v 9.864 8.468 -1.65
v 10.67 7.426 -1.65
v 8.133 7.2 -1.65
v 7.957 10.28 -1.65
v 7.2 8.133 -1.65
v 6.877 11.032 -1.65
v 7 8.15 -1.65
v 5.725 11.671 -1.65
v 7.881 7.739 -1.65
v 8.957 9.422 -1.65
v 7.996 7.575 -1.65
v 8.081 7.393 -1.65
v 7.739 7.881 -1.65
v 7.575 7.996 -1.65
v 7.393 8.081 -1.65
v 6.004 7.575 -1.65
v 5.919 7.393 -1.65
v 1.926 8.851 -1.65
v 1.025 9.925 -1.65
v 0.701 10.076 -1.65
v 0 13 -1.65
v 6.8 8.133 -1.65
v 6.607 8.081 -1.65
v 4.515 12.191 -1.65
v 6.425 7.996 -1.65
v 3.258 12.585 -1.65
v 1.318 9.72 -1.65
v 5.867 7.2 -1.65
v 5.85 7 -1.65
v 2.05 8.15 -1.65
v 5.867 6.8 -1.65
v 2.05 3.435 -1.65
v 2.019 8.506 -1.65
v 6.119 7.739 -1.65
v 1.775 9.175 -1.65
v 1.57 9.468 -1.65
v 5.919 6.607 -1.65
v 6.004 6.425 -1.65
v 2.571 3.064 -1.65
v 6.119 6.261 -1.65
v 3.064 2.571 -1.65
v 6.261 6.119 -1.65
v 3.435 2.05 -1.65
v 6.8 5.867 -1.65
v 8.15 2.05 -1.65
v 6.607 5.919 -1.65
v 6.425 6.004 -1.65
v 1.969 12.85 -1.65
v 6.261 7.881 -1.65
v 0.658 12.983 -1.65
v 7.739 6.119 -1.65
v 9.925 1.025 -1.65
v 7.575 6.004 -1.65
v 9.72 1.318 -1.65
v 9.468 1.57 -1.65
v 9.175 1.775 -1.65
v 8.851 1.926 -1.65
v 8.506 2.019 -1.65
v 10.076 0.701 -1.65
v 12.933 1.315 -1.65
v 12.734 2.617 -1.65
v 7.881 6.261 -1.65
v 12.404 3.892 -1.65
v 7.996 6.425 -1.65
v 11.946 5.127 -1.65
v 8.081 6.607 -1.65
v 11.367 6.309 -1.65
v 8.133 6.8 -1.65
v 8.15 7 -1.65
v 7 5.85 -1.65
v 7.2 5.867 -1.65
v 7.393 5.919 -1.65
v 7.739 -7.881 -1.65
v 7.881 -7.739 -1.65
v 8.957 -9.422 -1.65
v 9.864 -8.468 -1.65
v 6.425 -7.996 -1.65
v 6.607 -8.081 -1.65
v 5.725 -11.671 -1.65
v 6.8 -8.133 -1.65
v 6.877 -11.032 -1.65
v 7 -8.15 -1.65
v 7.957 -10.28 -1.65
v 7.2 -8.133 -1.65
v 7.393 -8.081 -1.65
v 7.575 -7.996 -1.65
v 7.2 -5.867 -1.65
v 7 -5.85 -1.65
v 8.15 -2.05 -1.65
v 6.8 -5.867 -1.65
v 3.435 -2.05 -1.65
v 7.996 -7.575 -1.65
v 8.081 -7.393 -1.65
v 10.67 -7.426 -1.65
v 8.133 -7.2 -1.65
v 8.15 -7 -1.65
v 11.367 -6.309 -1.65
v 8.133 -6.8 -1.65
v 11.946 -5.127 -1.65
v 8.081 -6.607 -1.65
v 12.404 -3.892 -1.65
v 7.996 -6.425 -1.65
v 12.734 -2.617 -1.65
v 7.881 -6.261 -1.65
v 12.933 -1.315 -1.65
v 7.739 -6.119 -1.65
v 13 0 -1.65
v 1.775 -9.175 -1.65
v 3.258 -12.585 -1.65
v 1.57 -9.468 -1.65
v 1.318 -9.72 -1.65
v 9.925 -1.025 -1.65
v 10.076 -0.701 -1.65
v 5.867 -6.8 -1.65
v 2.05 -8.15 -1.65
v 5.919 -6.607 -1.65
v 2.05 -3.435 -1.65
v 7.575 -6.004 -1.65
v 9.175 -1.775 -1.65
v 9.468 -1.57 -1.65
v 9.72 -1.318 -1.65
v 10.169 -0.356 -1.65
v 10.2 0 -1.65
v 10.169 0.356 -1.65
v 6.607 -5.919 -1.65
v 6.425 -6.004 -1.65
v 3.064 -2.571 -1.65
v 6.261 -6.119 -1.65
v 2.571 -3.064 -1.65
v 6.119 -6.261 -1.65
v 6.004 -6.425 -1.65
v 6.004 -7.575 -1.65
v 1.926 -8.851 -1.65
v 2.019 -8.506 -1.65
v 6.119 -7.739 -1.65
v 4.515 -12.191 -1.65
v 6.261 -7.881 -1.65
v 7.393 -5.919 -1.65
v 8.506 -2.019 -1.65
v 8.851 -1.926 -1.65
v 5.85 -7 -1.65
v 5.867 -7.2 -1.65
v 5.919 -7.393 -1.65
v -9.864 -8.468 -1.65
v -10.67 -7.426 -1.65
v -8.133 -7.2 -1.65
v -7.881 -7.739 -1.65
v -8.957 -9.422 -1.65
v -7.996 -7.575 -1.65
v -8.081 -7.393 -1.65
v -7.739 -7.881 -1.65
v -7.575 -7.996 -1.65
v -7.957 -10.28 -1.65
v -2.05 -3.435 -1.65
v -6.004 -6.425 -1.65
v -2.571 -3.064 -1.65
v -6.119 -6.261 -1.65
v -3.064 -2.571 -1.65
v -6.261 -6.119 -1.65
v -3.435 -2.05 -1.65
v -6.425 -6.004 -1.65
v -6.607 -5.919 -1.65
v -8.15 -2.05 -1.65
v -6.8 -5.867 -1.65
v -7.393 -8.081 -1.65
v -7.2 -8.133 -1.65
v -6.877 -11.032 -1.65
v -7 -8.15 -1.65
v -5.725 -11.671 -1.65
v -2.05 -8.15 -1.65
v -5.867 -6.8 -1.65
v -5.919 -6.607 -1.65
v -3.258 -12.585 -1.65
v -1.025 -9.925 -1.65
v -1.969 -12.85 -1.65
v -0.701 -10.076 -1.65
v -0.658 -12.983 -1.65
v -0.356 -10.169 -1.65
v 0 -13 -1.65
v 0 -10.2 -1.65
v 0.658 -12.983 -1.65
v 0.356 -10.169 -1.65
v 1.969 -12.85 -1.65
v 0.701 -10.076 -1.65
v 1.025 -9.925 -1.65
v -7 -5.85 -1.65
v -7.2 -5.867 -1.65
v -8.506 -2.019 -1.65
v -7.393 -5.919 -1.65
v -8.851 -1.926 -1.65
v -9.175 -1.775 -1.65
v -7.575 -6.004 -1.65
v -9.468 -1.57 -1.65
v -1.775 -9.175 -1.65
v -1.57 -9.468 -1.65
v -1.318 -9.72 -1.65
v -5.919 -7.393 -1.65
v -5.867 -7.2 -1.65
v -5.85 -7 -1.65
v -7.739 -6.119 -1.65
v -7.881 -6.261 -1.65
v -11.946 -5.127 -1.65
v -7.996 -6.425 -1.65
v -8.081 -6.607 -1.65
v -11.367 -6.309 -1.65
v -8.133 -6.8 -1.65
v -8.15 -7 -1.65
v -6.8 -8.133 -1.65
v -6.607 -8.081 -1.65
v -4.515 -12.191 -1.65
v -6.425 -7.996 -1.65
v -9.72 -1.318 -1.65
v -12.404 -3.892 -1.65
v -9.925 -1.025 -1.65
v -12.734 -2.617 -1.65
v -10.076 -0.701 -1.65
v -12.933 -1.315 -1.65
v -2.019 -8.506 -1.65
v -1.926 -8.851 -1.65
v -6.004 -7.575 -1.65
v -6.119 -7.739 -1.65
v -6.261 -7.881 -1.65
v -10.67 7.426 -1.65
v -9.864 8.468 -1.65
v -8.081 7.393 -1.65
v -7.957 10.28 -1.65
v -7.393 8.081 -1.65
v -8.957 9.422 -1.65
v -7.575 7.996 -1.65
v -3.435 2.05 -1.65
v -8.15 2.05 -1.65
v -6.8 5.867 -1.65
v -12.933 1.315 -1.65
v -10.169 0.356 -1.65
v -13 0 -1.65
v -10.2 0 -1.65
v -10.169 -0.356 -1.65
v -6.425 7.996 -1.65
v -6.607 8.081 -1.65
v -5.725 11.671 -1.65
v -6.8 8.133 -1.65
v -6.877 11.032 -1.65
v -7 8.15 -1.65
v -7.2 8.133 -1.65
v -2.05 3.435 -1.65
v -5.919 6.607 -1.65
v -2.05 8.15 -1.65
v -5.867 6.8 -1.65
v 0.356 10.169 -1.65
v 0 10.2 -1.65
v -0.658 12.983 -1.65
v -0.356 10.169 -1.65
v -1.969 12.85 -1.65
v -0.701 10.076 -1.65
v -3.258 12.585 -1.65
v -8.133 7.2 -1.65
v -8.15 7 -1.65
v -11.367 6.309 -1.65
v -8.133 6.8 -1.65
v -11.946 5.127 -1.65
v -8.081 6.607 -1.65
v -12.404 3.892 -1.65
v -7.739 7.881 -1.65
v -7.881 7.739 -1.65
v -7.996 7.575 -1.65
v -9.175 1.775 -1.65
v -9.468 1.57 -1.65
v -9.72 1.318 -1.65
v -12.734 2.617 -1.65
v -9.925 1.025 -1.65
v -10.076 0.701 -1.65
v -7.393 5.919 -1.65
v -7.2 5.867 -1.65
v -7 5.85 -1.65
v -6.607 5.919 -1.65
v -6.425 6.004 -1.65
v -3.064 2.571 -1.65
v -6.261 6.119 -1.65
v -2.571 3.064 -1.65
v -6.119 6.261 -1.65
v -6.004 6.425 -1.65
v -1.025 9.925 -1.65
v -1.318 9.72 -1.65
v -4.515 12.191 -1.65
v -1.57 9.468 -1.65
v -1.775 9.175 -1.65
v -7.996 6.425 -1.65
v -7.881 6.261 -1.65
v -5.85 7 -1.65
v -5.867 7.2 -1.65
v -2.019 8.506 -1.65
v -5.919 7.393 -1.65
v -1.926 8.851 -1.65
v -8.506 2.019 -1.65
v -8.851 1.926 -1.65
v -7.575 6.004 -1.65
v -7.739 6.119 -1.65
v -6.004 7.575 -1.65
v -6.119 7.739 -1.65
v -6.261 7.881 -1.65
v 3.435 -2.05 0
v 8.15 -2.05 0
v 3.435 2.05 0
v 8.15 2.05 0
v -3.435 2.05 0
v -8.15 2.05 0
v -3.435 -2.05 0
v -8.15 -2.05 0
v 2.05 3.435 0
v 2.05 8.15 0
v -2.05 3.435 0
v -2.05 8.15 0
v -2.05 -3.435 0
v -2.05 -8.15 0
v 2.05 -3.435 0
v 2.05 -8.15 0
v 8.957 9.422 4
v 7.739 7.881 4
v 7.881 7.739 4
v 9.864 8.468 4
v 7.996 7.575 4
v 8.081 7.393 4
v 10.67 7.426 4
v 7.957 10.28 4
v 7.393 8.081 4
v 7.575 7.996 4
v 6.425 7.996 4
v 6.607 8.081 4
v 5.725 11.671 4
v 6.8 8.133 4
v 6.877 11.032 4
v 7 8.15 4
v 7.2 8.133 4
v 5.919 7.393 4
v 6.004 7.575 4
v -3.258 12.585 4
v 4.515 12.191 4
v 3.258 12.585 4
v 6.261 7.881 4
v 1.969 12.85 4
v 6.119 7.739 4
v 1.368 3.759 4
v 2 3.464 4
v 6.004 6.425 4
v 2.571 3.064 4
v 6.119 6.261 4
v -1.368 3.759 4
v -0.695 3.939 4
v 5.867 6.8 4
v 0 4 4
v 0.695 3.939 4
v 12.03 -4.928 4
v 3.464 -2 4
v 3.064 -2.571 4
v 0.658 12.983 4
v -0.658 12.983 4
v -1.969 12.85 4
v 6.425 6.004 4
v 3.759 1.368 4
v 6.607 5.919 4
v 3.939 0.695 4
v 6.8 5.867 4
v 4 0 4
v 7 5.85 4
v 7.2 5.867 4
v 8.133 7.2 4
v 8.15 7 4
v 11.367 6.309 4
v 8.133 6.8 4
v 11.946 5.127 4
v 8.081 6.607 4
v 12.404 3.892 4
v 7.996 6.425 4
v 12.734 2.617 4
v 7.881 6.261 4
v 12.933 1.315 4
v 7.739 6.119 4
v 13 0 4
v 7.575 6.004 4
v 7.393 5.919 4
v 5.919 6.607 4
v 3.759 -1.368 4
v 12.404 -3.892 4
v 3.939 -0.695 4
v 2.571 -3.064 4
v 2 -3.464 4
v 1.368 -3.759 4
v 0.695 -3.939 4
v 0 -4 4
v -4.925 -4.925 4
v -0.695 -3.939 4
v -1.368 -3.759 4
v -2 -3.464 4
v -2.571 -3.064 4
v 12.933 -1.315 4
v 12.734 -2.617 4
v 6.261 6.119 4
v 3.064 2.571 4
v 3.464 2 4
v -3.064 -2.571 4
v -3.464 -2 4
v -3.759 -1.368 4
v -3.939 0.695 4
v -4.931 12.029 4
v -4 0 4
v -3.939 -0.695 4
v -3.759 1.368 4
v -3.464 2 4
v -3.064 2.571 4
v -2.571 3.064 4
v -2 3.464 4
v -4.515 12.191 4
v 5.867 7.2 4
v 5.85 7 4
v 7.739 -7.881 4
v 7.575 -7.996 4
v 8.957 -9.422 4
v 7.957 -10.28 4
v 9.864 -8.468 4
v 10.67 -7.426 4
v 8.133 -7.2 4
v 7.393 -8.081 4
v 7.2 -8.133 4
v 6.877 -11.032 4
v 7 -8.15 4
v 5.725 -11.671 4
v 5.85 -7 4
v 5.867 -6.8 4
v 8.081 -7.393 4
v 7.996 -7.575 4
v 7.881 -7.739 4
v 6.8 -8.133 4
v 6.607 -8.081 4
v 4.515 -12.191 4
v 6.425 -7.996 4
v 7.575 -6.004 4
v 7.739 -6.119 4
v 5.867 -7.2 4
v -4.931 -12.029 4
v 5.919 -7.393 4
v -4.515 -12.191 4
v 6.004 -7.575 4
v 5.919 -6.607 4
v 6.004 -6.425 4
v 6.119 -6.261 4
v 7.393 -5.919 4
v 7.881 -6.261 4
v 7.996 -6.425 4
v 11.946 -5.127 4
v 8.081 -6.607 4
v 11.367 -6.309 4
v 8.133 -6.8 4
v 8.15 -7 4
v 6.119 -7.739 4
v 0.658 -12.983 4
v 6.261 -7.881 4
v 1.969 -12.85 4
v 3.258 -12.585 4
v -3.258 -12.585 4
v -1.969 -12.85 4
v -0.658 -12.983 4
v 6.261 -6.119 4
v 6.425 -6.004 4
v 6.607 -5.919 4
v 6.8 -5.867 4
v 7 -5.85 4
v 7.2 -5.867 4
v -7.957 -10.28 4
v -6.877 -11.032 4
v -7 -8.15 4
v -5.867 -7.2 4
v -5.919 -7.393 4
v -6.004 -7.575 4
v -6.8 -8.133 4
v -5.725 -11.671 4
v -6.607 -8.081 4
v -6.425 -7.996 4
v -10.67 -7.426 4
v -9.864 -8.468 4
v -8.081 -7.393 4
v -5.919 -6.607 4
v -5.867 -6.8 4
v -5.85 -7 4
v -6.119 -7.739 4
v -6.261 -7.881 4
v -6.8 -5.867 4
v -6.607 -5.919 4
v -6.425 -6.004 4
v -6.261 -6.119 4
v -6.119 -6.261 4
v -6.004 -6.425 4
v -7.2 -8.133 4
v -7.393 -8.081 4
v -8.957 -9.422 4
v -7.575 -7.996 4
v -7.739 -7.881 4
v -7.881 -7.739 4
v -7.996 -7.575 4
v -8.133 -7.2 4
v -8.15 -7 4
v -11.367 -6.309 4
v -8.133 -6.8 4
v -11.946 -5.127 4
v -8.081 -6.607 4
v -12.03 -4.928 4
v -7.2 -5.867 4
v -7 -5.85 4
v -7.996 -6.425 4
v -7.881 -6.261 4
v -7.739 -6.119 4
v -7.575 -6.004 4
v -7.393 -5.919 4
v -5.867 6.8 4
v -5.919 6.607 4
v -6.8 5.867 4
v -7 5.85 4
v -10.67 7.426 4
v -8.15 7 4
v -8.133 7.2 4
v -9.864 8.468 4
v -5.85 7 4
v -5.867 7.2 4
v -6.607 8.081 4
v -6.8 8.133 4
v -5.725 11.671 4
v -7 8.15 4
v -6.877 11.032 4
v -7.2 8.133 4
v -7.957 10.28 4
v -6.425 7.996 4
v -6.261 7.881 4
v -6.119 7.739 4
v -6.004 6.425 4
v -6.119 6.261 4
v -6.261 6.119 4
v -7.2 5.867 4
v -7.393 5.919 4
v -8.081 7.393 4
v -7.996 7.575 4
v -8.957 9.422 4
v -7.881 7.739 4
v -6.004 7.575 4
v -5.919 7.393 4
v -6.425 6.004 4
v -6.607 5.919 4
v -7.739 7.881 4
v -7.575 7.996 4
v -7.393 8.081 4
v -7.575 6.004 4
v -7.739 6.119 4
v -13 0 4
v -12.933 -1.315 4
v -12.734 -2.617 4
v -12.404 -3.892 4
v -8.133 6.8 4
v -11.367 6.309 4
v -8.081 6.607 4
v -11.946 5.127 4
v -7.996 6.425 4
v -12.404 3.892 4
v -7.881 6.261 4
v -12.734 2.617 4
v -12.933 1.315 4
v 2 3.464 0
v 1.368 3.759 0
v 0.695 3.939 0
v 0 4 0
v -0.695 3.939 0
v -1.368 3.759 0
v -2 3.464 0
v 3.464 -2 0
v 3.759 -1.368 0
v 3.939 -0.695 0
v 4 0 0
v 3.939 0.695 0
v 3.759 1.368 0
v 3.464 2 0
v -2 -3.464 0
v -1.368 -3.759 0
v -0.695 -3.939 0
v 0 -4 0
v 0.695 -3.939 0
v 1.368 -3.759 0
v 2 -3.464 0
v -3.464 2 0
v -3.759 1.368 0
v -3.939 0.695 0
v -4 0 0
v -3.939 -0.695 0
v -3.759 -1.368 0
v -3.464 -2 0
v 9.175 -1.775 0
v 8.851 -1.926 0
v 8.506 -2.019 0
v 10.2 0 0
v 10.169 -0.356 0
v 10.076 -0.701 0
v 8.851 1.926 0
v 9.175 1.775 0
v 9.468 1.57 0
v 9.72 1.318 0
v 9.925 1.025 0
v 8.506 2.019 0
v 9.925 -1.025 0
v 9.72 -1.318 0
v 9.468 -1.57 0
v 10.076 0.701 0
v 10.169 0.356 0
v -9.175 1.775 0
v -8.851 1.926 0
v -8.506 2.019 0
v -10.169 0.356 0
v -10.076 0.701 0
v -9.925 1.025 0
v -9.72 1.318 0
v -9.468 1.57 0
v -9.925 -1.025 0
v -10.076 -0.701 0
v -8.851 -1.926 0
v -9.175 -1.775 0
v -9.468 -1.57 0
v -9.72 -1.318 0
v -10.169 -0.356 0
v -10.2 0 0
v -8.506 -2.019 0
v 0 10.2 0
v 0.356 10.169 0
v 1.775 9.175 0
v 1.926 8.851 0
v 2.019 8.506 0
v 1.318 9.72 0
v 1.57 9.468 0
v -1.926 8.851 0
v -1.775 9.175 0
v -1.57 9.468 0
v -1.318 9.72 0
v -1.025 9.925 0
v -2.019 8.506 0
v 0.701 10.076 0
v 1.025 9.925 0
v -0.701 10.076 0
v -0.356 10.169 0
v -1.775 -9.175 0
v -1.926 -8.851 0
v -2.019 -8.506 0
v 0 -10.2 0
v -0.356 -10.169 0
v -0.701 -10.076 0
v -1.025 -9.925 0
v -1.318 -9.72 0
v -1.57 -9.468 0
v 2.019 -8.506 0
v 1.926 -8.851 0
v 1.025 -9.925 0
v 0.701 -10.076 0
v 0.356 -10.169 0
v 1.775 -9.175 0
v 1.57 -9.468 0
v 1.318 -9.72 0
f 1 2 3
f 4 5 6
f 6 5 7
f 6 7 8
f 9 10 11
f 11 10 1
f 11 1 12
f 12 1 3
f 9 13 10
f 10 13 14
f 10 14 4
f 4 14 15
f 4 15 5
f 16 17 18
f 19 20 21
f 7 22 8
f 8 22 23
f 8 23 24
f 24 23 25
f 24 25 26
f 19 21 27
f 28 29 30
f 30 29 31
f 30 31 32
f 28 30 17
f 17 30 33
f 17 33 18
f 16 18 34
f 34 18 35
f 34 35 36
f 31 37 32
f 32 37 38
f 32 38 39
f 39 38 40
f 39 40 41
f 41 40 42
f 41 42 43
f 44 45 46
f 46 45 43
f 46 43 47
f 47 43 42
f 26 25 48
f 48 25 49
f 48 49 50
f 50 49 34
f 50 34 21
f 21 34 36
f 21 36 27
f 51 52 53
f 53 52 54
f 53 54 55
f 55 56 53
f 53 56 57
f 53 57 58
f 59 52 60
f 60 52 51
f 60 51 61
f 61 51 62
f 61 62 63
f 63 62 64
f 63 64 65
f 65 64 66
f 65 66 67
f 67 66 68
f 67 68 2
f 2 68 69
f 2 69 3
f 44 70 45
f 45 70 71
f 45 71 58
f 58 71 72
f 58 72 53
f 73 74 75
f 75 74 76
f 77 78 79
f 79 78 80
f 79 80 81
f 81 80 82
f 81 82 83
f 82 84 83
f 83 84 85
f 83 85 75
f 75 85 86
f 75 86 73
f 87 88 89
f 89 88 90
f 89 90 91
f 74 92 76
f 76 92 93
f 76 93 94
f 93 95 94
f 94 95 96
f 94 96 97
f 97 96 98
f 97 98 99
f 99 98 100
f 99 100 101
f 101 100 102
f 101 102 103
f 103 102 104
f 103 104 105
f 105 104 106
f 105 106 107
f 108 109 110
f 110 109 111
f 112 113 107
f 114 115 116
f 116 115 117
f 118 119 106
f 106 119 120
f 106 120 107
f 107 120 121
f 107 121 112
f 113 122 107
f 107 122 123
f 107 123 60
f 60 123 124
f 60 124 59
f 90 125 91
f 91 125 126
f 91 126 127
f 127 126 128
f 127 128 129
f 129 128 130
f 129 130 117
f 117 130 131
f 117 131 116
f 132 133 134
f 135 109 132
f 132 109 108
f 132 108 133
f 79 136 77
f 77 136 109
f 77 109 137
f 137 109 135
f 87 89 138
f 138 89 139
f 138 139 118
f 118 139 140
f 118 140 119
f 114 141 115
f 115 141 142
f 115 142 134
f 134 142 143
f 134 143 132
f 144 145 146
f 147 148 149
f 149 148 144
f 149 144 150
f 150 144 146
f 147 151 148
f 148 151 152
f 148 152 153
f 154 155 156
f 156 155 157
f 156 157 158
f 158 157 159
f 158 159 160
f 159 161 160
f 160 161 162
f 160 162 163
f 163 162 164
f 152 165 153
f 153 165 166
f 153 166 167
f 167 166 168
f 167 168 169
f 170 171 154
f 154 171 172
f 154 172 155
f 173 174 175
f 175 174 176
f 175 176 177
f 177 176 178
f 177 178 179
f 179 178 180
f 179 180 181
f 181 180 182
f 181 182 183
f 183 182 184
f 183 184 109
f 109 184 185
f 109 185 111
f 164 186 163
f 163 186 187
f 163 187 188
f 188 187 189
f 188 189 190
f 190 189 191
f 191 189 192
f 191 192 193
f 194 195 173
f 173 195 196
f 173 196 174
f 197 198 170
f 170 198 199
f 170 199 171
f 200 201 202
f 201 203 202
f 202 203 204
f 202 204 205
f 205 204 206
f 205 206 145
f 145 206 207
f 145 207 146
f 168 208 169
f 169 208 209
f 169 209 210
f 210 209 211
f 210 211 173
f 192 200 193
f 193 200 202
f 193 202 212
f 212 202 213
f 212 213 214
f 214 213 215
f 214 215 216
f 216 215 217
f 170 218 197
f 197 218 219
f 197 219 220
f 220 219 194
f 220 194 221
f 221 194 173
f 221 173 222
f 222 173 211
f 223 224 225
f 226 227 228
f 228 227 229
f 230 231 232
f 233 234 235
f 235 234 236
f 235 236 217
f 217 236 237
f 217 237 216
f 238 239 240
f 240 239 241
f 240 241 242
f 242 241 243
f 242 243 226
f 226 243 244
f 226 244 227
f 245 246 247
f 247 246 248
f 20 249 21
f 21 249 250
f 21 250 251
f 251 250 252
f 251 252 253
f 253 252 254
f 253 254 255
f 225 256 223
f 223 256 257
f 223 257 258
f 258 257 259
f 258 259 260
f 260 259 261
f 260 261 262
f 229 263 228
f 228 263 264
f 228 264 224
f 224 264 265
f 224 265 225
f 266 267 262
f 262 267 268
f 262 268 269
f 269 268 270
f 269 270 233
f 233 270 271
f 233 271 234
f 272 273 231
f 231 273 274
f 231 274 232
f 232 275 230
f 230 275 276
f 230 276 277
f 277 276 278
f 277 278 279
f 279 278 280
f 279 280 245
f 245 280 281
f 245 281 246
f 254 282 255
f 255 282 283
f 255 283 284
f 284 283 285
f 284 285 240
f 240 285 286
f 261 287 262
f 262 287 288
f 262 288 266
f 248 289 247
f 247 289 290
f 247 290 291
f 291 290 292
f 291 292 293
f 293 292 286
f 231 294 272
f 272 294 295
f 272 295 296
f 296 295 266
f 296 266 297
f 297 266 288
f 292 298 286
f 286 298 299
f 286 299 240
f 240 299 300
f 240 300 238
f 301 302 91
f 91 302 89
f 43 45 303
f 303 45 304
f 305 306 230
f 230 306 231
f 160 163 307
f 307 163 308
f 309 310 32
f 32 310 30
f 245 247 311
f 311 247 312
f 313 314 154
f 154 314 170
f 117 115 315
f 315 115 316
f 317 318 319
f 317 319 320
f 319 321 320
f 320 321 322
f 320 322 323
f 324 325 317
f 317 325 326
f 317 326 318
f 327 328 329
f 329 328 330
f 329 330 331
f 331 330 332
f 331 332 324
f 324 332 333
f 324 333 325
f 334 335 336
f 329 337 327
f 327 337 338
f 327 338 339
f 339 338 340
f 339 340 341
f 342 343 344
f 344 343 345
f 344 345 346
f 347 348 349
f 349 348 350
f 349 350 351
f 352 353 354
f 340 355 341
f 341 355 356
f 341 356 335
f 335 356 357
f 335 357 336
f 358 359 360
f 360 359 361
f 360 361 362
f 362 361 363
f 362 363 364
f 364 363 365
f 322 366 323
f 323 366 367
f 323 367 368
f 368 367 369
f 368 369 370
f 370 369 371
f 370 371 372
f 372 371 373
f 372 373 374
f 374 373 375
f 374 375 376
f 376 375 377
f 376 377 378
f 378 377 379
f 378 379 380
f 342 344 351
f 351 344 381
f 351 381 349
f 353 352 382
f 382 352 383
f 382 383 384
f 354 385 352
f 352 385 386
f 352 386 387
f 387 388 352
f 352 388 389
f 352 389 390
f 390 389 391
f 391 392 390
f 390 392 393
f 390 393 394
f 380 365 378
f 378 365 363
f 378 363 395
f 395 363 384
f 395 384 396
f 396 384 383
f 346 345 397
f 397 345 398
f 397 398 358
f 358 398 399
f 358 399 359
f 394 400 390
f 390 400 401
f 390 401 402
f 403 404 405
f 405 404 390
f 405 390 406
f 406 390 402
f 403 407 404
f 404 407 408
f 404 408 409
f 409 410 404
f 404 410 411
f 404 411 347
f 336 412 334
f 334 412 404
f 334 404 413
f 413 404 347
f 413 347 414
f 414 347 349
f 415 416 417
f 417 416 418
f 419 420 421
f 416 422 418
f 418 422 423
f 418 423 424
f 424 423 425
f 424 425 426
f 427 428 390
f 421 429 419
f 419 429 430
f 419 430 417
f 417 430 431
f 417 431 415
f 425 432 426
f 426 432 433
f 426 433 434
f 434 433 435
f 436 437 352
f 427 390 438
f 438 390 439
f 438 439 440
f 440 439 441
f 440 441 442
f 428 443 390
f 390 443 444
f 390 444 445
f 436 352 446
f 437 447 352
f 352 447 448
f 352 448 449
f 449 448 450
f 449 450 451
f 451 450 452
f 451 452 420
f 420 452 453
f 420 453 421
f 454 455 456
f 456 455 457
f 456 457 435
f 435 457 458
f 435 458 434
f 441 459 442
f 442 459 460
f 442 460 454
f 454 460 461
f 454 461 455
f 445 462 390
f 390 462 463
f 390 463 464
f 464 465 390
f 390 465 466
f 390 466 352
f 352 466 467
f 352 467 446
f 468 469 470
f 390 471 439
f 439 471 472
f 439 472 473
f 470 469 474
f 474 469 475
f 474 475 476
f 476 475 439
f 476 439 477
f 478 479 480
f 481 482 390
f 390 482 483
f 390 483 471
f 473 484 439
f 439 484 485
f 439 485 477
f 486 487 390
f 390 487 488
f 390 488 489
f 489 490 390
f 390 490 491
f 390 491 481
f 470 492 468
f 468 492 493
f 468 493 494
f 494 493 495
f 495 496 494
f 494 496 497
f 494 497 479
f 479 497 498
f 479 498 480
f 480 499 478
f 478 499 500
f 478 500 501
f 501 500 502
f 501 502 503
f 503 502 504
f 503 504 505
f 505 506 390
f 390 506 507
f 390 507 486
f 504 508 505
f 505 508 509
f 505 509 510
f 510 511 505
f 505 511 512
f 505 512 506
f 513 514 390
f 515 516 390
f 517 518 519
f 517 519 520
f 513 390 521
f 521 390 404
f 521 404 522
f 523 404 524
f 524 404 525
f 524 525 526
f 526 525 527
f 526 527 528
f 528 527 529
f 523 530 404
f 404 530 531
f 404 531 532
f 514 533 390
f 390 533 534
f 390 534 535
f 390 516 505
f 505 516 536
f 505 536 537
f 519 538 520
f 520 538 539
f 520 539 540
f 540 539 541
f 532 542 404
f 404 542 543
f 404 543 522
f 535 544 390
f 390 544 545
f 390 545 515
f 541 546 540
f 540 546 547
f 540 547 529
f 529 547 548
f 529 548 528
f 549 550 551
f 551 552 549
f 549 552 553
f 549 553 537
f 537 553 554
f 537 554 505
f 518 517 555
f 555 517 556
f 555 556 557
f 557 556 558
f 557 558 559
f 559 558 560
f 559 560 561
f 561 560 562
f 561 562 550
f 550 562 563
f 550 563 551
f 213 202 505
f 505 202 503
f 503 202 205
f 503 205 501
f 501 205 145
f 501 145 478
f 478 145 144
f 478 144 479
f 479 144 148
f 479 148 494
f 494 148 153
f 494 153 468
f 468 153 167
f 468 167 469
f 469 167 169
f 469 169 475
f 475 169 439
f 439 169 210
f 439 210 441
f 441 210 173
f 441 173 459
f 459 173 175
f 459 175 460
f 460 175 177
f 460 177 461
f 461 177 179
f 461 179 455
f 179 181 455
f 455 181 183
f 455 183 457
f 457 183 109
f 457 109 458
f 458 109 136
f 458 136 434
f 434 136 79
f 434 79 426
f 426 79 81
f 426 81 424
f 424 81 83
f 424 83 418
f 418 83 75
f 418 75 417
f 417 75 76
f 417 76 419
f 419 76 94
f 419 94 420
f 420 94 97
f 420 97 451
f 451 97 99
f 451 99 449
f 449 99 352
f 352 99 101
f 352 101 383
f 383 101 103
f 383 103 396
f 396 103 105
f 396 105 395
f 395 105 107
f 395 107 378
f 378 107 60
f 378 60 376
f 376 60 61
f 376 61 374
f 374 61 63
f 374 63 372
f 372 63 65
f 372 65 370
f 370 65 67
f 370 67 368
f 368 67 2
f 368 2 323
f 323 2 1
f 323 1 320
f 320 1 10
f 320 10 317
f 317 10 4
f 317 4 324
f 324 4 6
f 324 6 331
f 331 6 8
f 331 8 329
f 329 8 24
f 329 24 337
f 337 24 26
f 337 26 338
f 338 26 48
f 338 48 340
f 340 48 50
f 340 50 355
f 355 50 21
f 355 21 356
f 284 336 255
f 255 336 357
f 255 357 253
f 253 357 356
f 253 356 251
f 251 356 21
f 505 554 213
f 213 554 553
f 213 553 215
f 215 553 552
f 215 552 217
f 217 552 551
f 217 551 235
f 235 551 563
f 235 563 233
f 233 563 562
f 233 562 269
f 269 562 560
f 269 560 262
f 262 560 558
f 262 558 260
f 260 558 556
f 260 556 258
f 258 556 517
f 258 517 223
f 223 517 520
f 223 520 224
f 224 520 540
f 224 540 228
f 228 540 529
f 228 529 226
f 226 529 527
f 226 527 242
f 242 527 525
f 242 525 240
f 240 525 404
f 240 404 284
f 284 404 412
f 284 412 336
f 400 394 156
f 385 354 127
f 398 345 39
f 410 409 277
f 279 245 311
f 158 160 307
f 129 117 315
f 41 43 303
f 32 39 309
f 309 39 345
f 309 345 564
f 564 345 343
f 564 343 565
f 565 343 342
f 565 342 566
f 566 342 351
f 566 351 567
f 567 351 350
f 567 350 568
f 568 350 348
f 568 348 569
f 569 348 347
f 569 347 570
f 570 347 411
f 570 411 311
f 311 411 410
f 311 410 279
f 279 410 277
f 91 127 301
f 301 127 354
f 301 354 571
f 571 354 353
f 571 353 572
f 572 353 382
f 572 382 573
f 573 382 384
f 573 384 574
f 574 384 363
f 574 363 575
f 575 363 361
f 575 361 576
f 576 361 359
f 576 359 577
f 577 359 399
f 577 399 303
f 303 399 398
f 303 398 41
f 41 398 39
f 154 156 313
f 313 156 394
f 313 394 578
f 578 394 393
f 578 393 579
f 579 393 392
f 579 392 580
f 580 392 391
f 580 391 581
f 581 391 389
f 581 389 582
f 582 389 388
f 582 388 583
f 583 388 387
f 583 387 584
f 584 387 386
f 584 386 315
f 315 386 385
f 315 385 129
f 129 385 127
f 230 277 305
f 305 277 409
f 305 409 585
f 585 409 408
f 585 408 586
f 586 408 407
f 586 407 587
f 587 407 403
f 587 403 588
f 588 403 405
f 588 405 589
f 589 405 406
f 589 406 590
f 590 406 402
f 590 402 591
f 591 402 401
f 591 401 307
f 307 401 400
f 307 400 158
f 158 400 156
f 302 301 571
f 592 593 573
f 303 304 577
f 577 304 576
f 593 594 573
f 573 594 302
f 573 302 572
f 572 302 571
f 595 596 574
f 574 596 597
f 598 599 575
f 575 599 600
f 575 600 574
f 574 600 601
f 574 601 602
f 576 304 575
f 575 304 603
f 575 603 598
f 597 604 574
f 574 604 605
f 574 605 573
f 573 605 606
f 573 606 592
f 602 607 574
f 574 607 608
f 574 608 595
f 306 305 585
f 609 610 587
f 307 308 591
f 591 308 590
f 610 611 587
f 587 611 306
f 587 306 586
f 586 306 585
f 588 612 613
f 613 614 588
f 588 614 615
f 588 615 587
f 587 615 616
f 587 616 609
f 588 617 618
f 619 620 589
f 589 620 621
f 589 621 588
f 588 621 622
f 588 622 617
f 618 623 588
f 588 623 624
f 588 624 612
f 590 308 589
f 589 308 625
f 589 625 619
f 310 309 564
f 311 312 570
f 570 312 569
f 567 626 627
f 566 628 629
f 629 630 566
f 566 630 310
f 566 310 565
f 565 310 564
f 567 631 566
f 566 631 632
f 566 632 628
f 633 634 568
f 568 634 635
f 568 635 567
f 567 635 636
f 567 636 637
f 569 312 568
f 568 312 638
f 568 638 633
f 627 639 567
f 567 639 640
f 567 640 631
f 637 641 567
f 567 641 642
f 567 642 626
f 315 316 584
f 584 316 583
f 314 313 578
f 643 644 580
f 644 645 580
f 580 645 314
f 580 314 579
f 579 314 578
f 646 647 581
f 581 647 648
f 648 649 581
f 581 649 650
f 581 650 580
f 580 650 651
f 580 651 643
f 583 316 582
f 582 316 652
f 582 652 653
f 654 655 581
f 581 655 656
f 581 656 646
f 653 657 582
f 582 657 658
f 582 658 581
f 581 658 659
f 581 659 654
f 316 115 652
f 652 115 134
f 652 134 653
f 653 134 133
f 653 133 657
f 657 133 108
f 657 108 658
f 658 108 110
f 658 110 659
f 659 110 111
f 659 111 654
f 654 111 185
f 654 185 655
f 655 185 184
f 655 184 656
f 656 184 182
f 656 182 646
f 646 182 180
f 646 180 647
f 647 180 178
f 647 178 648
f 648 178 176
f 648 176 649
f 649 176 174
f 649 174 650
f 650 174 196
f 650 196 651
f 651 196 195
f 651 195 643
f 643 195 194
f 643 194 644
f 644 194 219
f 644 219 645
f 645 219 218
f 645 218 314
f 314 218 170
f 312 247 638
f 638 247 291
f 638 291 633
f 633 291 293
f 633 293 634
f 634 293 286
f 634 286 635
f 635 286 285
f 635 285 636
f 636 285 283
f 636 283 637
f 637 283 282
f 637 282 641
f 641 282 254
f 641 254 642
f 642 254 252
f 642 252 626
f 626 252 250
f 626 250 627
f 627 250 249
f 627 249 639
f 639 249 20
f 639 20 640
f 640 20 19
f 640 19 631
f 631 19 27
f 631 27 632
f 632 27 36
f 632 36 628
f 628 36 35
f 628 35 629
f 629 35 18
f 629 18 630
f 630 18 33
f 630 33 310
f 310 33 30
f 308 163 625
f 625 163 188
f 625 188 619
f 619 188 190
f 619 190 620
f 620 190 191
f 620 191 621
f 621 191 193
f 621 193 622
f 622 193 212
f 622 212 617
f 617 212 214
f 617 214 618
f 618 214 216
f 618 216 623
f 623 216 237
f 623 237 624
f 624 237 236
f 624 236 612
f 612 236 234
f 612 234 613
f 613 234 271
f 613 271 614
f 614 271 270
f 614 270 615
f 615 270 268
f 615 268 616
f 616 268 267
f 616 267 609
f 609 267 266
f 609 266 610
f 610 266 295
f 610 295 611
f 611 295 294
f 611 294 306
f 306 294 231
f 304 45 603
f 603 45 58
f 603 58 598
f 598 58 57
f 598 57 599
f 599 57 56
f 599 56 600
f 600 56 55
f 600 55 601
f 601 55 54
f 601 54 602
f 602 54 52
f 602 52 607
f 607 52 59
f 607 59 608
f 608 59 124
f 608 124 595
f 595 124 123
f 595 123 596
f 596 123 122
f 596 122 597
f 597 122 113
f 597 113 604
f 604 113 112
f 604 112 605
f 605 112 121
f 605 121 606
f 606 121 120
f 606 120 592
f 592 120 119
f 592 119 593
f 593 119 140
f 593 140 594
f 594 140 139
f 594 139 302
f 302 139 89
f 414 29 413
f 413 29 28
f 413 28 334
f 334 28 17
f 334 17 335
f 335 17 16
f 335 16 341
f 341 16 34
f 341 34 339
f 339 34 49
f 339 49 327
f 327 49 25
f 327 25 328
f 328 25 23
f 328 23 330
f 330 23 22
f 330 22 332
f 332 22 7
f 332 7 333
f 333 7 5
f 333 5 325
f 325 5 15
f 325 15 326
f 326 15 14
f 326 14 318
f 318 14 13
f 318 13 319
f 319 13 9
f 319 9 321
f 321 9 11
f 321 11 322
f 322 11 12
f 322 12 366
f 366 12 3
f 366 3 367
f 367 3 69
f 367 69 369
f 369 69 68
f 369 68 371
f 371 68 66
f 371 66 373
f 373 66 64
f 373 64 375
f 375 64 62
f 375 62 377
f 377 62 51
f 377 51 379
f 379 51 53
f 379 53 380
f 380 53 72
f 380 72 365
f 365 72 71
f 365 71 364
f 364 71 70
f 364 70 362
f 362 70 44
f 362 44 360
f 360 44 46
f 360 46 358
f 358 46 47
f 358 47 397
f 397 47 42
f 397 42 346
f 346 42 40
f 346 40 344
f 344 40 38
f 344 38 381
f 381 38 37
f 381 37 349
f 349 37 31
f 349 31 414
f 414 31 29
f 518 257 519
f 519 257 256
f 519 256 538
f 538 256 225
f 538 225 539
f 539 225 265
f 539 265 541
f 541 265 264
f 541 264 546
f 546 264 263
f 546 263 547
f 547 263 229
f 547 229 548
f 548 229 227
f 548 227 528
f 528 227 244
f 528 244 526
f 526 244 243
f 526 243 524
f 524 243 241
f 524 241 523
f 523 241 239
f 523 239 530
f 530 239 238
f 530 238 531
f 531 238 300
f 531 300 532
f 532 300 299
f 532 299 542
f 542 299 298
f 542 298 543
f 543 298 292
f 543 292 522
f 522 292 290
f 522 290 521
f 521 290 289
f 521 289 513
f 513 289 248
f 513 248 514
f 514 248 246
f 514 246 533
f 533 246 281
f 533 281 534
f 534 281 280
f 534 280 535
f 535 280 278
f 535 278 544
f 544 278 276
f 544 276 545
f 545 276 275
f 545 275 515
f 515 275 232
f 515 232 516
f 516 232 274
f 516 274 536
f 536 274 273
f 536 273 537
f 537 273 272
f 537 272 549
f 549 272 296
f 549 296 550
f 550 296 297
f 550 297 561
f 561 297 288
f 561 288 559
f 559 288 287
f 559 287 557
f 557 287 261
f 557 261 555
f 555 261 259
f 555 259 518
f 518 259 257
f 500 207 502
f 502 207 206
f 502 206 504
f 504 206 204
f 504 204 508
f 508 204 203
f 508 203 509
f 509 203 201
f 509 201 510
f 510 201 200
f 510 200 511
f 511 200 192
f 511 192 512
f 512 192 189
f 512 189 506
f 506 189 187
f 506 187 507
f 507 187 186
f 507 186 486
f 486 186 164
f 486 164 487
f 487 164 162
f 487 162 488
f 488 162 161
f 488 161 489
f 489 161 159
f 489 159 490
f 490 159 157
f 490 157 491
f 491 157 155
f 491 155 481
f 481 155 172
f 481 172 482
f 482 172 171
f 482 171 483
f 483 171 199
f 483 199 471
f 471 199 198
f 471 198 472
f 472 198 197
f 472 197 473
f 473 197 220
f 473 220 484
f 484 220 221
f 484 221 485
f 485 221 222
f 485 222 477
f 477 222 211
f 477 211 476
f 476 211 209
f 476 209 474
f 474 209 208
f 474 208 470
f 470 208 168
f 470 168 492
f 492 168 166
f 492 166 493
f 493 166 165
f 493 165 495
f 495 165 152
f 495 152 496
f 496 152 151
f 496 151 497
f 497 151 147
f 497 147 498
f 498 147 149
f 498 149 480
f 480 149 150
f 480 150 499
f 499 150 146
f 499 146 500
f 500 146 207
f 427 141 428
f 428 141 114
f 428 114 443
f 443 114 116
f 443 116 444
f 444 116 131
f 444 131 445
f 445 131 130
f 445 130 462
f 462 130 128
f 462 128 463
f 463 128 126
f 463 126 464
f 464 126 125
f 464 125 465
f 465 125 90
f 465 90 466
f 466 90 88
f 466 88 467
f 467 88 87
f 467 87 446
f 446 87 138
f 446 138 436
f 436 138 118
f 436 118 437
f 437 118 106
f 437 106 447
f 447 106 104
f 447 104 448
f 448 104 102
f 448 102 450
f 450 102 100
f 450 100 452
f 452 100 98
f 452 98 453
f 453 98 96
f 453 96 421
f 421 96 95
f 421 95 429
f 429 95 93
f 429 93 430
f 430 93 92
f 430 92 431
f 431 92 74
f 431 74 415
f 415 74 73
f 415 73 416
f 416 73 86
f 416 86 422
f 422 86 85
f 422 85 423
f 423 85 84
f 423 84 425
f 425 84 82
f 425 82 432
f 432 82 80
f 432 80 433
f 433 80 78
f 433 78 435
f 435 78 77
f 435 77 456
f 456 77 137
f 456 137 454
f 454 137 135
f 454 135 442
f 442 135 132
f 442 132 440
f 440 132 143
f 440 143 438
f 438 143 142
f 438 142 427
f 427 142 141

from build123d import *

# Parameters (mm, degrees)
TRIAL_LOAD_PLATE_PROFILE_R           = 13
TRIAL_LOAD_PLATE_PROFILE_R_2         = 4
TRIAL_LOAD_PLATE_DEPTH               = 4
CAPTURED_HORN_KEY_BOSS_START         = -1.65
CAPTURED_HORN_KEY_BOSS_PROFILE_R     = 13
CAPTURED_HORN_KEY_BOSS_DEPTH         = 1.65
KEY_POCKET_HUB_START                 = -1.65
STOCK_HORN_POCKET_HUB_R              = 3.5
KEY_POCKET_HUB_DEPTH                 = 1.65
KEY_POCKET_HORIZONTAL_START          = -1.65
STOCK_HORN_POCKET_HORIZONTAL_W       = 16.3
STOCK_HORN_POCKET_HORIZONTAL_H       = 4.1
KEY_POCKET_HORIZONTAL_DEPTH          = 1.65
KEY_POCKET_VERTICAL_START            = -1.65
STOCK_HORN_POCKET_VERTICAL_W         = 4.1
STOCK_HORN_POCKET_VERTICAL_H         = 16.3
KEY_POCKET_VERTICAL_DEPTH            = 1.65
KEY_POCKET_ROUNDED_TIPS_START        = -1.65
STOCK_HORN_POCKET_ROUNDED_TIPS_R     = 2.05
KEY_POCKET_ROUNDED_TIPS_DEPTH        = 1.65
UNMODIFIED_HORN_CAPTURE_M2_START     = -50
UNMODIFIED_HORN_CAPTURE_M2_PROFILE_R = 1.15
UNMODIFIED_HORN_CAPTURE_M2_DEPTH     = 69.814887722
HUB_CLEARANCE_IN_KEY_BOSS_ONLY_START = -1.65
HORN_CENTER_HUB_CLEARANCE_R          = 4
HUB_CLEARANCE_IN_KEY_BOSS_ONLY_DEPTH = 1.65


with BuildPart() as part:
    # Trial_load_plate_profile → Trial_load_plate (new body)
    with BuildSketch(Plane.XY):
        Circle(TRIAL_LOAD_PLATE_PROFILE_R)
        Circle(TRIAL_LOAD_PLATE_PROFILE_R_2, mode=Mode.SUBTRACT)
    extrude(amount=TRIAL_LOAD_PLATE_DEPTH)

    # Captured_horn_key_boss_profile → Captured_horn_key_boss (add)
    with BuildSketch(Plane.XY.offset(CAPTURED_HORN_KEY_BOSS_START)):
        Circle(CAPTURED_HORN_KEY_BOSS_PROFILE_R)
    extrude(amount=CAPTURED_HORN_KEY_BOSS_DEPTH)

    # Stock_horn_pocket_Hub → Key_pocket_Hub (cut)
    with BuildSketch(Plane.XY.offset(KEY_POCKET_HUB_START)):
        Circle(STOCK_HORN_POCKET_HUB_R)
    extrude(amount=KEY_POCKET_HUB_DEPTH, mode=Mode.SUBTRACT)

    # Stock_horn_pocket_Horizontal → Key_pocket_Horizontal (cut)
    with BuildSketch(Plane.XY.offset(KEY_POCKET_HORIZONTAL_START)):
        Rectangle(STOCK_HORN_POCKET_HORIZONTAL_W, STOCK_HORN_POCKET_HORIZONTAL_H)
    extrude(amount=KEY_POCKET_HORIZONTAL_DEPTH, mode=Mode.SUBTRACT)

    # Stock_horn_pocket_Vertical → Key_pocket_Vertical (cut)
    with BuildSketch(Plane.XY.offset(KEY_POCKET_VERTICAL_START)):
        Rectangle(STOCK_HORN_POCKET_VERTICAL_W, STOCK_HORN_POCKET_VERTICAL_H)
    extrude(amount=KEY_POCKET_VERTICAL_DEPTH, mode=Mode.SUBTRACT)

    # Stock_horn_pocket_Rounded_tips → Key_pocket_Rounded_tips (cut)
    with BuildSketch(Plane.XY.offset(KEY_POCKET_ROUNDED_TIPS_START)):
        with Locations((8.15, 0)):
            Circle(STOCK_HORN_POCKET_ROUNDED_TIPS_R)
        with Locations((-8.15, 0)):
            Circle(STOCK_HORN_POCKET_ROUNDED_TIPS_R)
        with Locations((0, 8.15)):
            Circle(STOCK_HORN_POCKET_ROUNDED_TIPS_R)
        with Locations((0, -8.15)):
            Circle(STOCK_HORN_POCKET_ROUNDED_TIPS_R)
    extrude(amount=KEY_POCKET_ROUNDED_TIPS_DEPTH, mode=Mode.SUBTRACT)

    # Unmodified_horn_capture_M2_profile → Unmodified_horn_capture_M2 (cut, through all)
    with BuildSketch(Plane.XY.offset(UNMODIFIED_HORN_CAPTURE_M2_START)):
        with Locations((7, 7)):
            Circle(UNMODIFIED_HORN_CAPTURE_M2_PROFILE_R)
        with Locations((-7, 7)):
            Circle(UNMODIFIED_HORN_CAPTURE_M2_PROFILE_R)
        with Locations((-7, -7)):
            Circle(UNMODIFIED_HORN_CAPTURE_M2_PROFILE_R)
        with Locations((7, -7)):
            Circle(UNMODIFIED_HORN_CAPTURE_M2_PROFILE_R)
    extrude(amount=UNMODIFIED_HORN_CAPTURE_M2_DEPTH, mode=Mode.SUBTRACT)

    # Horn_center_hub_clearance → Hub_clearance_in_key_boss_only (cut)
    with BuildSketch(Plane.XY.offset(HUB_CLEARANCE_IN_KEY_BOSS_ONLY_START)):
        with Locations(Location((0, 0, 0), (0, 0, 149.169502568))):
            Circle(HORN_CENTER_HUB_CLEARANCE_R)
    extrude(amount=HUB_CLEARANCE_IN_KEY_BOSS_ONLY_DEPTH, mode=Mode.SUBTRACT)


solid = part.part
